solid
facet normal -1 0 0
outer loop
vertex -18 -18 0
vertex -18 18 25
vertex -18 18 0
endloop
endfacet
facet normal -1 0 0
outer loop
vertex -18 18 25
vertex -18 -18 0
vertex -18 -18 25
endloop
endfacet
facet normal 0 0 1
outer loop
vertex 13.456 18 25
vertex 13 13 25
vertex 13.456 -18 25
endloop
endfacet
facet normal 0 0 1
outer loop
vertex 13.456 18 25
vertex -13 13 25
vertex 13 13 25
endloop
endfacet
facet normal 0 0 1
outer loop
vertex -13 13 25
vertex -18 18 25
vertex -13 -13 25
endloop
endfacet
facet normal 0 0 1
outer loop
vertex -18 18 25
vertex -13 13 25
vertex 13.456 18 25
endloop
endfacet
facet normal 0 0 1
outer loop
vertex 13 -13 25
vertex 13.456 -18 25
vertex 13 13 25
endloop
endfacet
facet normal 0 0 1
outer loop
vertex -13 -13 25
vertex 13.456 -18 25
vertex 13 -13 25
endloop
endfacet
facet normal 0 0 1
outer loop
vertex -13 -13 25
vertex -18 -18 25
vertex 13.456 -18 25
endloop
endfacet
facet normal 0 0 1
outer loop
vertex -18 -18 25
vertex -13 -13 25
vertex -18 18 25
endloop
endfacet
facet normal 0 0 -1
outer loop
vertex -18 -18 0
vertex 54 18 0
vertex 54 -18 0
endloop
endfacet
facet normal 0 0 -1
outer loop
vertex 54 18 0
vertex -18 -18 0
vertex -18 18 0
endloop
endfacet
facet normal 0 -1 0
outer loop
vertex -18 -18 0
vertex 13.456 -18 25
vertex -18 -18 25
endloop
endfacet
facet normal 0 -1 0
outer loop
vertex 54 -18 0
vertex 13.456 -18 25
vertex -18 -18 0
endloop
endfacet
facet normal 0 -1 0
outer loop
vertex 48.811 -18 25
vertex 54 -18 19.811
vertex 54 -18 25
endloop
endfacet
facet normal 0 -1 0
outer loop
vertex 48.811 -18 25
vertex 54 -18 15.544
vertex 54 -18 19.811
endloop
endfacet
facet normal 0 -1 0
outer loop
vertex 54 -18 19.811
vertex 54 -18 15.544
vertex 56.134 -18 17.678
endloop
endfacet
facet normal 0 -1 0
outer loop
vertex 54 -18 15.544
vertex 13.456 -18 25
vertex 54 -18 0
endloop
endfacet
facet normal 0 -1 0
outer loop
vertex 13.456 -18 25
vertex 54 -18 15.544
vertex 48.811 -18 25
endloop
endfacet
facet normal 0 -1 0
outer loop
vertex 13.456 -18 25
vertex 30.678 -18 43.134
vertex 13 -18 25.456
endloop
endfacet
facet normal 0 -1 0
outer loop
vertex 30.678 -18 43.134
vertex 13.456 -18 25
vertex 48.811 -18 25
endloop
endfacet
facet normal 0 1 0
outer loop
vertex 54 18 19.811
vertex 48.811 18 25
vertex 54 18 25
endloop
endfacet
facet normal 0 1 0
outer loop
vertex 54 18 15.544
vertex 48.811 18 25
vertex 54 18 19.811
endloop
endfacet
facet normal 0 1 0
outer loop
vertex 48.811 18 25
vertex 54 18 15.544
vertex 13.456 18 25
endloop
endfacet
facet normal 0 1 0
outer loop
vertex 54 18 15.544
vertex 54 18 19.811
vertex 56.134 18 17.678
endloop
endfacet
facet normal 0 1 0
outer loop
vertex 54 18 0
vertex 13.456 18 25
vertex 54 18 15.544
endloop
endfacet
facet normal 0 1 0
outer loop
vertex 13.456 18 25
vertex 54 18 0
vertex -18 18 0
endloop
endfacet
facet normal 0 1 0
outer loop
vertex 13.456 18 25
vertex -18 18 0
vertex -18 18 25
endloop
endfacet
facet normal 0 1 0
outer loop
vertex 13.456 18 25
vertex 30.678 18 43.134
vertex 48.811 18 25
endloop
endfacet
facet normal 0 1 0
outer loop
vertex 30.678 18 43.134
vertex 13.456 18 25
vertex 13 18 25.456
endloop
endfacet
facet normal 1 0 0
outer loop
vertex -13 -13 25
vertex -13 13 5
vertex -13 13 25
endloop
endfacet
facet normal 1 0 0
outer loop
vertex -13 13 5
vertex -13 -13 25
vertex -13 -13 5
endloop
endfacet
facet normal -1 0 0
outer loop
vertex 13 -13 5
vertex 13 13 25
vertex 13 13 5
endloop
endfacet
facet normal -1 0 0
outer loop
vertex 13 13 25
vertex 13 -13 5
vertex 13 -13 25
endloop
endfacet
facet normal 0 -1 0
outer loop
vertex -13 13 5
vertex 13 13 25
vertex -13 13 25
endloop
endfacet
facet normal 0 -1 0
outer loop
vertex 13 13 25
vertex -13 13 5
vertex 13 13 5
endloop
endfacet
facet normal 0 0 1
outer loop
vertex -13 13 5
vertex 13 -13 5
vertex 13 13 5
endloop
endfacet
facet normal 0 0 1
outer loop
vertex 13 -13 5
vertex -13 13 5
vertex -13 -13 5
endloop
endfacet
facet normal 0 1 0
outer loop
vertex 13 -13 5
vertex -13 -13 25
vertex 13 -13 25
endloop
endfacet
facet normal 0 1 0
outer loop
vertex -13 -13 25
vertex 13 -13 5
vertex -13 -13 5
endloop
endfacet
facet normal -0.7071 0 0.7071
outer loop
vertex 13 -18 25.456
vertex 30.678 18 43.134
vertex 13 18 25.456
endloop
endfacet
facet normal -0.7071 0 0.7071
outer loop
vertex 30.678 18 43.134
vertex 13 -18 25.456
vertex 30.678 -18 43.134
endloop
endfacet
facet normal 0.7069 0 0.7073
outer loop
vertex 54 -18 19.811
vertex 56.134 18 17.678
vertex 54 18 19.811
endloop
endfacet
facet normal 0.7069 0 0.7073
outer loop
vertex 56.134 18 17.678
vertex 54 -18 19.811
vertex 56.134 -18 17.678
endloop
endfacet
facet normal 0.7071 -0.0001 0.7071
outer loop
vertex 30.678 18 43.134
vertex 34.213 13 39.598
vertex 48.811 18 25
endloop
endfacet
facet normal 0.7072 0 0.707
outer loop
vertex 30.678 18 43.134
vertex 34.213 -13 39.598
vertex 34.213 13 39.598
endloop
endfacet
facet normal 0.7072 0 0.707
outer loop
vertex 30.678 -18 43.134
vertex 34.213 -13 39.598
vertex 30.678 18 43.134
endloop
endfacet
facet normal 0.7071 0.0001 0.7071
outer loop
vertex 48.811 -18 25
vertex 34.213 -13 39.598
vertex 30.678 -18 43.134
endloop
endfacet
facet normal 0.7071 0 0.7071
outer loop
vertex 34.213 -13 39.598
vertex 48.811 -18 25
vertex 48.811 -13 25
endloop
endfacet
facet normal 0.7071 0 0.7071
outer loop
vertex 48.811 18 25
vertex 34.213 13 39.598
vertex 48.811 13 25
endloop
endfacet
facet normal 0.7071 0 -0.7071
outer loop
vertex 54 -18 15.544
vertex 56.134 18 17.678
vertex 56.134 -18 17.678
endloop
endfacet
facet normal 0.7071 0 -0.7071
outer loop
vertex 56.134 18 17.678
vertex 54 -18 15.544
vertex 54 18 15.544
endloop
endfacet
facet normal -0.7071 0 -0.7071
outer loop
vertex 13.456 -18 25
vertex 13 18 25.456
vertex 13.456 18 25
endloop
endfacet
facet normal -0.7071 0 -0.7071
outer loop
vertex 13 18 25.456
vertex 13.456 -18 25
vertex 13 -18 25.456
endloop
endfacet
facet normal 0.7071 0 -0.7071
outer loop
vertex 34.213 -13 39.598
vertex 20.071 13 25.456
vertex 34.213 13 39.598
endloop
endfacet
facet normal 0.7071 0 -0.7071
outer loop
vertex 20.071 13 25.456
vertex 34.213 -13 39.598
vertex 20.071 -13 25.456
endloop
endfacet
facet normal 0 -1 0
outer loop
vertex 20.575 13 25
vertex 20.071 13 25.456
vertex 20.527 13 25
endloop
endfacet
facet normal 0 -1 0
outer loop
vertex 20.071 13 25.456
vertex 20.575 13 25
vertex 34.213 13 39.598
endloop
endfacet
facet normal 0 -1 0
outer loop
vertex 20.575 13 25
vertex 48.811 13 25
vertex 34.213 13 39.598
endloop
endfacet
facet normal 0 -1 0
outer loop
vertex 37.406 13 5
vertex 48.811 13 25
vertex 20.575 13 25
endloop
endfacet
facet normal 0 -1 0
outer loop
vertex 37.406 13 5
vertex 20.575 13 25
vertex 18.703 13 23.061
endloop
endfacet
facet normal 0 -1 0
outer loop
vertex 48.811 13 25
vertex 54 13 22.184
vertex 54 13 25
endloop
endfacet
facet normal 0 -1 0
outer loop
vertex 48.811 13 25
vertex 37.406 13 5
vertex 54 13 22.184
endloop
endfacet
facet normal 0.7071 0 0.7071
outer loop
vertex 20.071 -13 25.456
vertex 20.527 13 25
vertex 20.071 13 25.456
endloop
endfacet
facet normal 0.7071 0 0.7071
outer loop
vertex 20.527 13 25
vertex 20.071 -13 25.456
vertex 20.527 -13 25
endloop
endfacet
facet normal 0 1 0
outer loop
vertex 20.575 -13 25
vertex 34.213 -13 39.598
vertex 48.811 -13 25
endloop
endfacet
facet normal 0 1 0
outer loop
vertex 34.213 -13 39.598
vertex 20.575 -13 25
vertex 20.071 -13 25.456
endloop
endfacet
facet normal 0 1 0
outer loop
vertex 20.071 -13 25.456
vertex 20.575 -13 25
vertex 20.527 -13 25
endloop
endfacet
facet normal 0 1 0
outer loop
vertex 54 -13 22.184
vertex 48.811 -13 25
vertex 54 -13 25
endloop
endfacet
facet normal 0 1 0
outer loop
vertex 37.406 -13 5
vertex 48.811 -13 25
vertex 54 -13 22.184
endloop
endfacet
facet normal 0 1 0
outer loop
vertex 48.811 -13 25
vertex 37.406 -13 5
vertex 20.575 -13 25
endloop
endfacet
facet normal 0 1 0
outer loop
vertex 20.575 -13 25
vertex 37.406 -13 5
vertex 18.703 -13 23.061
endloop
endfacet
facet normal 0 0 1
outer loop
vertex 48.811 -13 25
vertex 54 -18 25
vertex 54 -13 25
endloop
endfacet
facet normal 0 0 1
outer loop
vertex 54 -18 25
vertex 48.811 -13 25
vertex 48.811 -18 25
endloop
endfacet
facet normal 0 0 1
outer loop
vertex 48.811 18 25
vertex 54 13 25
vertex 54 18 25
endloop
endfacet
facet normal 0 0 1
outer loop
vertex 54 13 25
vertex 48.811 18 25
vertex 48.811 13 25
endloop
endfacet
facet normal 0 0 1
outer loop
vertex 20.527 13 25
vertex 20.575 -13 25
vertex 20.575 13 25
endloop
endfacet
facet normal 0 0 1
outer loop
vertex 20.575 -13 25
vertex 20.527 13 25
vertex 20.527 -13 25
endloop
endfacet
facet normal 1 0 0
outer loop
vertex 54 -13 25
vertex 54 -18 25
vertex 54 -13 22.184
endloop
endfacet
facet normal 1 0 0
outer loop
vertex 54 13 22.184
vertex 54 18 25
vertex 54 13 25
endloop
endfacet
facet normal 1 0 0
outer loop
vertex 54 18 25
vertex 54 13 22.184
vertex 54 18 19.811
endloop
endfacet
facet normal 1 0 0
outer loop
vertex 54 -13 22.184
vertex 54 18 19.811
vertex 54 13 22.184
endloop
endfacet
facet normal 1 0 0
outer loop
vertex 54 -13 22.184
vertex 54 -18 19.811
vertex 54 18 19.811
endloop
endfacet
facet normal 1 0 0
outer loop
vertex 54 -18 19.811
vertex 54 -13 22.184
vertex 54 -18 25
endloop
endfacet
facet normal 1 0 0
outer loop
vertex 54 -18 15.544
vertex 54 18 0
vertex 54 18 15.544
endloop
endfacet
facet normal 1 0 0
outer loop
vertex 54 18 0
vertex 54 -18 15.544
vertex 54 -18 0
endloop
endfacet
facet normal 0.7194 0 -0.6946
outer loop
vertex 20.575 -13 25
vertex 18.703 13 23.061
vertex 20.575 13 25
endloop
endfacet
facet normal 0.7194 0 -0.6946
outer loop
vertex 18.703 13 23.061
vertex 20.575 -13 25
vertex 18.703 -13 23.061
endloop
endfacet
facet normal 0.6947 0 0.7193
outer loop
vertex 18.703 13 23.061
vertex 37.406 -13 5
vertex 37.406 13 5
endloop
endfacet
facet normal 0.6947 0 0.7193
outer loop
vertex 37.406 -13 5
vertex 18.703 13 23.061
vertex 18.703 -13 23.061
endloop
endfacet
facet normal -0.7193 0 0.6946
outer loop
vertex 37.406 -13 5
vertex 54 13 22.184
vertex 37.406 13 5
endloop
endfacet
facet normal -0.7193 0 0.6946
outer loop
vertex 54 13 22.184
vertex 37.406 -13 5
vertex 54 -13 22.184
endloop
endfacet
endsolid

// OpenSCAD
boxx = 250;
boxy = 250;
boxz = 250;
extrusionx = 26;
extrusiony = 26;
extrusionwall = 2;
extrusionsurrond = 5;
extrusionholder = extrusionsurrond*5;

module square(){
    difference(){
        union(){
            translate([-(extrusionx + extrusionsurrond*2)/2,-(extrusiony + extrusionsurrond*2)/2,0]){cube([extrusionx + extrusionsurrond*2, extrusiony + extrusionsurrond*2, extrusionholder]);}
        }
        
        union(){
            translate([-extrusionx/2,-extrusiony/2,extrusionsurrond]){cube([extrusionx, extrusiony,extrusionholder]);}
        }
    }
    
}

difference(){
    union(){
square();
translate([(extrusionx + extrusionsurrond*2)/2+(extrusionx + extrusionsurrond*2)/2*sin(45)-extrusionsurrond,0,(extrusionx + extrusionsurrond*2)/2*cos(45)]){rotate(a = [0,45,0]){square();}}
            translate([(extrusionx + extrusionsurrond*2)/2,-(extrusiony + extrusionsurrond*2)/2,0]){cube([extrusionx + extrusionsurrond*2, extrusiony + extrusionsurrond*2, extrusionholder]);}
        }
        
        union(){
            translate([-extrusionx/2*0+extrusionx*cos(44),-extrusiony/2,extrusionx*sin(44)+extrusionsurrond]){rotate(a = [0,44,0]){
                cube([extrusionx, extrusiony, 100]);}}
        }
            
 }
